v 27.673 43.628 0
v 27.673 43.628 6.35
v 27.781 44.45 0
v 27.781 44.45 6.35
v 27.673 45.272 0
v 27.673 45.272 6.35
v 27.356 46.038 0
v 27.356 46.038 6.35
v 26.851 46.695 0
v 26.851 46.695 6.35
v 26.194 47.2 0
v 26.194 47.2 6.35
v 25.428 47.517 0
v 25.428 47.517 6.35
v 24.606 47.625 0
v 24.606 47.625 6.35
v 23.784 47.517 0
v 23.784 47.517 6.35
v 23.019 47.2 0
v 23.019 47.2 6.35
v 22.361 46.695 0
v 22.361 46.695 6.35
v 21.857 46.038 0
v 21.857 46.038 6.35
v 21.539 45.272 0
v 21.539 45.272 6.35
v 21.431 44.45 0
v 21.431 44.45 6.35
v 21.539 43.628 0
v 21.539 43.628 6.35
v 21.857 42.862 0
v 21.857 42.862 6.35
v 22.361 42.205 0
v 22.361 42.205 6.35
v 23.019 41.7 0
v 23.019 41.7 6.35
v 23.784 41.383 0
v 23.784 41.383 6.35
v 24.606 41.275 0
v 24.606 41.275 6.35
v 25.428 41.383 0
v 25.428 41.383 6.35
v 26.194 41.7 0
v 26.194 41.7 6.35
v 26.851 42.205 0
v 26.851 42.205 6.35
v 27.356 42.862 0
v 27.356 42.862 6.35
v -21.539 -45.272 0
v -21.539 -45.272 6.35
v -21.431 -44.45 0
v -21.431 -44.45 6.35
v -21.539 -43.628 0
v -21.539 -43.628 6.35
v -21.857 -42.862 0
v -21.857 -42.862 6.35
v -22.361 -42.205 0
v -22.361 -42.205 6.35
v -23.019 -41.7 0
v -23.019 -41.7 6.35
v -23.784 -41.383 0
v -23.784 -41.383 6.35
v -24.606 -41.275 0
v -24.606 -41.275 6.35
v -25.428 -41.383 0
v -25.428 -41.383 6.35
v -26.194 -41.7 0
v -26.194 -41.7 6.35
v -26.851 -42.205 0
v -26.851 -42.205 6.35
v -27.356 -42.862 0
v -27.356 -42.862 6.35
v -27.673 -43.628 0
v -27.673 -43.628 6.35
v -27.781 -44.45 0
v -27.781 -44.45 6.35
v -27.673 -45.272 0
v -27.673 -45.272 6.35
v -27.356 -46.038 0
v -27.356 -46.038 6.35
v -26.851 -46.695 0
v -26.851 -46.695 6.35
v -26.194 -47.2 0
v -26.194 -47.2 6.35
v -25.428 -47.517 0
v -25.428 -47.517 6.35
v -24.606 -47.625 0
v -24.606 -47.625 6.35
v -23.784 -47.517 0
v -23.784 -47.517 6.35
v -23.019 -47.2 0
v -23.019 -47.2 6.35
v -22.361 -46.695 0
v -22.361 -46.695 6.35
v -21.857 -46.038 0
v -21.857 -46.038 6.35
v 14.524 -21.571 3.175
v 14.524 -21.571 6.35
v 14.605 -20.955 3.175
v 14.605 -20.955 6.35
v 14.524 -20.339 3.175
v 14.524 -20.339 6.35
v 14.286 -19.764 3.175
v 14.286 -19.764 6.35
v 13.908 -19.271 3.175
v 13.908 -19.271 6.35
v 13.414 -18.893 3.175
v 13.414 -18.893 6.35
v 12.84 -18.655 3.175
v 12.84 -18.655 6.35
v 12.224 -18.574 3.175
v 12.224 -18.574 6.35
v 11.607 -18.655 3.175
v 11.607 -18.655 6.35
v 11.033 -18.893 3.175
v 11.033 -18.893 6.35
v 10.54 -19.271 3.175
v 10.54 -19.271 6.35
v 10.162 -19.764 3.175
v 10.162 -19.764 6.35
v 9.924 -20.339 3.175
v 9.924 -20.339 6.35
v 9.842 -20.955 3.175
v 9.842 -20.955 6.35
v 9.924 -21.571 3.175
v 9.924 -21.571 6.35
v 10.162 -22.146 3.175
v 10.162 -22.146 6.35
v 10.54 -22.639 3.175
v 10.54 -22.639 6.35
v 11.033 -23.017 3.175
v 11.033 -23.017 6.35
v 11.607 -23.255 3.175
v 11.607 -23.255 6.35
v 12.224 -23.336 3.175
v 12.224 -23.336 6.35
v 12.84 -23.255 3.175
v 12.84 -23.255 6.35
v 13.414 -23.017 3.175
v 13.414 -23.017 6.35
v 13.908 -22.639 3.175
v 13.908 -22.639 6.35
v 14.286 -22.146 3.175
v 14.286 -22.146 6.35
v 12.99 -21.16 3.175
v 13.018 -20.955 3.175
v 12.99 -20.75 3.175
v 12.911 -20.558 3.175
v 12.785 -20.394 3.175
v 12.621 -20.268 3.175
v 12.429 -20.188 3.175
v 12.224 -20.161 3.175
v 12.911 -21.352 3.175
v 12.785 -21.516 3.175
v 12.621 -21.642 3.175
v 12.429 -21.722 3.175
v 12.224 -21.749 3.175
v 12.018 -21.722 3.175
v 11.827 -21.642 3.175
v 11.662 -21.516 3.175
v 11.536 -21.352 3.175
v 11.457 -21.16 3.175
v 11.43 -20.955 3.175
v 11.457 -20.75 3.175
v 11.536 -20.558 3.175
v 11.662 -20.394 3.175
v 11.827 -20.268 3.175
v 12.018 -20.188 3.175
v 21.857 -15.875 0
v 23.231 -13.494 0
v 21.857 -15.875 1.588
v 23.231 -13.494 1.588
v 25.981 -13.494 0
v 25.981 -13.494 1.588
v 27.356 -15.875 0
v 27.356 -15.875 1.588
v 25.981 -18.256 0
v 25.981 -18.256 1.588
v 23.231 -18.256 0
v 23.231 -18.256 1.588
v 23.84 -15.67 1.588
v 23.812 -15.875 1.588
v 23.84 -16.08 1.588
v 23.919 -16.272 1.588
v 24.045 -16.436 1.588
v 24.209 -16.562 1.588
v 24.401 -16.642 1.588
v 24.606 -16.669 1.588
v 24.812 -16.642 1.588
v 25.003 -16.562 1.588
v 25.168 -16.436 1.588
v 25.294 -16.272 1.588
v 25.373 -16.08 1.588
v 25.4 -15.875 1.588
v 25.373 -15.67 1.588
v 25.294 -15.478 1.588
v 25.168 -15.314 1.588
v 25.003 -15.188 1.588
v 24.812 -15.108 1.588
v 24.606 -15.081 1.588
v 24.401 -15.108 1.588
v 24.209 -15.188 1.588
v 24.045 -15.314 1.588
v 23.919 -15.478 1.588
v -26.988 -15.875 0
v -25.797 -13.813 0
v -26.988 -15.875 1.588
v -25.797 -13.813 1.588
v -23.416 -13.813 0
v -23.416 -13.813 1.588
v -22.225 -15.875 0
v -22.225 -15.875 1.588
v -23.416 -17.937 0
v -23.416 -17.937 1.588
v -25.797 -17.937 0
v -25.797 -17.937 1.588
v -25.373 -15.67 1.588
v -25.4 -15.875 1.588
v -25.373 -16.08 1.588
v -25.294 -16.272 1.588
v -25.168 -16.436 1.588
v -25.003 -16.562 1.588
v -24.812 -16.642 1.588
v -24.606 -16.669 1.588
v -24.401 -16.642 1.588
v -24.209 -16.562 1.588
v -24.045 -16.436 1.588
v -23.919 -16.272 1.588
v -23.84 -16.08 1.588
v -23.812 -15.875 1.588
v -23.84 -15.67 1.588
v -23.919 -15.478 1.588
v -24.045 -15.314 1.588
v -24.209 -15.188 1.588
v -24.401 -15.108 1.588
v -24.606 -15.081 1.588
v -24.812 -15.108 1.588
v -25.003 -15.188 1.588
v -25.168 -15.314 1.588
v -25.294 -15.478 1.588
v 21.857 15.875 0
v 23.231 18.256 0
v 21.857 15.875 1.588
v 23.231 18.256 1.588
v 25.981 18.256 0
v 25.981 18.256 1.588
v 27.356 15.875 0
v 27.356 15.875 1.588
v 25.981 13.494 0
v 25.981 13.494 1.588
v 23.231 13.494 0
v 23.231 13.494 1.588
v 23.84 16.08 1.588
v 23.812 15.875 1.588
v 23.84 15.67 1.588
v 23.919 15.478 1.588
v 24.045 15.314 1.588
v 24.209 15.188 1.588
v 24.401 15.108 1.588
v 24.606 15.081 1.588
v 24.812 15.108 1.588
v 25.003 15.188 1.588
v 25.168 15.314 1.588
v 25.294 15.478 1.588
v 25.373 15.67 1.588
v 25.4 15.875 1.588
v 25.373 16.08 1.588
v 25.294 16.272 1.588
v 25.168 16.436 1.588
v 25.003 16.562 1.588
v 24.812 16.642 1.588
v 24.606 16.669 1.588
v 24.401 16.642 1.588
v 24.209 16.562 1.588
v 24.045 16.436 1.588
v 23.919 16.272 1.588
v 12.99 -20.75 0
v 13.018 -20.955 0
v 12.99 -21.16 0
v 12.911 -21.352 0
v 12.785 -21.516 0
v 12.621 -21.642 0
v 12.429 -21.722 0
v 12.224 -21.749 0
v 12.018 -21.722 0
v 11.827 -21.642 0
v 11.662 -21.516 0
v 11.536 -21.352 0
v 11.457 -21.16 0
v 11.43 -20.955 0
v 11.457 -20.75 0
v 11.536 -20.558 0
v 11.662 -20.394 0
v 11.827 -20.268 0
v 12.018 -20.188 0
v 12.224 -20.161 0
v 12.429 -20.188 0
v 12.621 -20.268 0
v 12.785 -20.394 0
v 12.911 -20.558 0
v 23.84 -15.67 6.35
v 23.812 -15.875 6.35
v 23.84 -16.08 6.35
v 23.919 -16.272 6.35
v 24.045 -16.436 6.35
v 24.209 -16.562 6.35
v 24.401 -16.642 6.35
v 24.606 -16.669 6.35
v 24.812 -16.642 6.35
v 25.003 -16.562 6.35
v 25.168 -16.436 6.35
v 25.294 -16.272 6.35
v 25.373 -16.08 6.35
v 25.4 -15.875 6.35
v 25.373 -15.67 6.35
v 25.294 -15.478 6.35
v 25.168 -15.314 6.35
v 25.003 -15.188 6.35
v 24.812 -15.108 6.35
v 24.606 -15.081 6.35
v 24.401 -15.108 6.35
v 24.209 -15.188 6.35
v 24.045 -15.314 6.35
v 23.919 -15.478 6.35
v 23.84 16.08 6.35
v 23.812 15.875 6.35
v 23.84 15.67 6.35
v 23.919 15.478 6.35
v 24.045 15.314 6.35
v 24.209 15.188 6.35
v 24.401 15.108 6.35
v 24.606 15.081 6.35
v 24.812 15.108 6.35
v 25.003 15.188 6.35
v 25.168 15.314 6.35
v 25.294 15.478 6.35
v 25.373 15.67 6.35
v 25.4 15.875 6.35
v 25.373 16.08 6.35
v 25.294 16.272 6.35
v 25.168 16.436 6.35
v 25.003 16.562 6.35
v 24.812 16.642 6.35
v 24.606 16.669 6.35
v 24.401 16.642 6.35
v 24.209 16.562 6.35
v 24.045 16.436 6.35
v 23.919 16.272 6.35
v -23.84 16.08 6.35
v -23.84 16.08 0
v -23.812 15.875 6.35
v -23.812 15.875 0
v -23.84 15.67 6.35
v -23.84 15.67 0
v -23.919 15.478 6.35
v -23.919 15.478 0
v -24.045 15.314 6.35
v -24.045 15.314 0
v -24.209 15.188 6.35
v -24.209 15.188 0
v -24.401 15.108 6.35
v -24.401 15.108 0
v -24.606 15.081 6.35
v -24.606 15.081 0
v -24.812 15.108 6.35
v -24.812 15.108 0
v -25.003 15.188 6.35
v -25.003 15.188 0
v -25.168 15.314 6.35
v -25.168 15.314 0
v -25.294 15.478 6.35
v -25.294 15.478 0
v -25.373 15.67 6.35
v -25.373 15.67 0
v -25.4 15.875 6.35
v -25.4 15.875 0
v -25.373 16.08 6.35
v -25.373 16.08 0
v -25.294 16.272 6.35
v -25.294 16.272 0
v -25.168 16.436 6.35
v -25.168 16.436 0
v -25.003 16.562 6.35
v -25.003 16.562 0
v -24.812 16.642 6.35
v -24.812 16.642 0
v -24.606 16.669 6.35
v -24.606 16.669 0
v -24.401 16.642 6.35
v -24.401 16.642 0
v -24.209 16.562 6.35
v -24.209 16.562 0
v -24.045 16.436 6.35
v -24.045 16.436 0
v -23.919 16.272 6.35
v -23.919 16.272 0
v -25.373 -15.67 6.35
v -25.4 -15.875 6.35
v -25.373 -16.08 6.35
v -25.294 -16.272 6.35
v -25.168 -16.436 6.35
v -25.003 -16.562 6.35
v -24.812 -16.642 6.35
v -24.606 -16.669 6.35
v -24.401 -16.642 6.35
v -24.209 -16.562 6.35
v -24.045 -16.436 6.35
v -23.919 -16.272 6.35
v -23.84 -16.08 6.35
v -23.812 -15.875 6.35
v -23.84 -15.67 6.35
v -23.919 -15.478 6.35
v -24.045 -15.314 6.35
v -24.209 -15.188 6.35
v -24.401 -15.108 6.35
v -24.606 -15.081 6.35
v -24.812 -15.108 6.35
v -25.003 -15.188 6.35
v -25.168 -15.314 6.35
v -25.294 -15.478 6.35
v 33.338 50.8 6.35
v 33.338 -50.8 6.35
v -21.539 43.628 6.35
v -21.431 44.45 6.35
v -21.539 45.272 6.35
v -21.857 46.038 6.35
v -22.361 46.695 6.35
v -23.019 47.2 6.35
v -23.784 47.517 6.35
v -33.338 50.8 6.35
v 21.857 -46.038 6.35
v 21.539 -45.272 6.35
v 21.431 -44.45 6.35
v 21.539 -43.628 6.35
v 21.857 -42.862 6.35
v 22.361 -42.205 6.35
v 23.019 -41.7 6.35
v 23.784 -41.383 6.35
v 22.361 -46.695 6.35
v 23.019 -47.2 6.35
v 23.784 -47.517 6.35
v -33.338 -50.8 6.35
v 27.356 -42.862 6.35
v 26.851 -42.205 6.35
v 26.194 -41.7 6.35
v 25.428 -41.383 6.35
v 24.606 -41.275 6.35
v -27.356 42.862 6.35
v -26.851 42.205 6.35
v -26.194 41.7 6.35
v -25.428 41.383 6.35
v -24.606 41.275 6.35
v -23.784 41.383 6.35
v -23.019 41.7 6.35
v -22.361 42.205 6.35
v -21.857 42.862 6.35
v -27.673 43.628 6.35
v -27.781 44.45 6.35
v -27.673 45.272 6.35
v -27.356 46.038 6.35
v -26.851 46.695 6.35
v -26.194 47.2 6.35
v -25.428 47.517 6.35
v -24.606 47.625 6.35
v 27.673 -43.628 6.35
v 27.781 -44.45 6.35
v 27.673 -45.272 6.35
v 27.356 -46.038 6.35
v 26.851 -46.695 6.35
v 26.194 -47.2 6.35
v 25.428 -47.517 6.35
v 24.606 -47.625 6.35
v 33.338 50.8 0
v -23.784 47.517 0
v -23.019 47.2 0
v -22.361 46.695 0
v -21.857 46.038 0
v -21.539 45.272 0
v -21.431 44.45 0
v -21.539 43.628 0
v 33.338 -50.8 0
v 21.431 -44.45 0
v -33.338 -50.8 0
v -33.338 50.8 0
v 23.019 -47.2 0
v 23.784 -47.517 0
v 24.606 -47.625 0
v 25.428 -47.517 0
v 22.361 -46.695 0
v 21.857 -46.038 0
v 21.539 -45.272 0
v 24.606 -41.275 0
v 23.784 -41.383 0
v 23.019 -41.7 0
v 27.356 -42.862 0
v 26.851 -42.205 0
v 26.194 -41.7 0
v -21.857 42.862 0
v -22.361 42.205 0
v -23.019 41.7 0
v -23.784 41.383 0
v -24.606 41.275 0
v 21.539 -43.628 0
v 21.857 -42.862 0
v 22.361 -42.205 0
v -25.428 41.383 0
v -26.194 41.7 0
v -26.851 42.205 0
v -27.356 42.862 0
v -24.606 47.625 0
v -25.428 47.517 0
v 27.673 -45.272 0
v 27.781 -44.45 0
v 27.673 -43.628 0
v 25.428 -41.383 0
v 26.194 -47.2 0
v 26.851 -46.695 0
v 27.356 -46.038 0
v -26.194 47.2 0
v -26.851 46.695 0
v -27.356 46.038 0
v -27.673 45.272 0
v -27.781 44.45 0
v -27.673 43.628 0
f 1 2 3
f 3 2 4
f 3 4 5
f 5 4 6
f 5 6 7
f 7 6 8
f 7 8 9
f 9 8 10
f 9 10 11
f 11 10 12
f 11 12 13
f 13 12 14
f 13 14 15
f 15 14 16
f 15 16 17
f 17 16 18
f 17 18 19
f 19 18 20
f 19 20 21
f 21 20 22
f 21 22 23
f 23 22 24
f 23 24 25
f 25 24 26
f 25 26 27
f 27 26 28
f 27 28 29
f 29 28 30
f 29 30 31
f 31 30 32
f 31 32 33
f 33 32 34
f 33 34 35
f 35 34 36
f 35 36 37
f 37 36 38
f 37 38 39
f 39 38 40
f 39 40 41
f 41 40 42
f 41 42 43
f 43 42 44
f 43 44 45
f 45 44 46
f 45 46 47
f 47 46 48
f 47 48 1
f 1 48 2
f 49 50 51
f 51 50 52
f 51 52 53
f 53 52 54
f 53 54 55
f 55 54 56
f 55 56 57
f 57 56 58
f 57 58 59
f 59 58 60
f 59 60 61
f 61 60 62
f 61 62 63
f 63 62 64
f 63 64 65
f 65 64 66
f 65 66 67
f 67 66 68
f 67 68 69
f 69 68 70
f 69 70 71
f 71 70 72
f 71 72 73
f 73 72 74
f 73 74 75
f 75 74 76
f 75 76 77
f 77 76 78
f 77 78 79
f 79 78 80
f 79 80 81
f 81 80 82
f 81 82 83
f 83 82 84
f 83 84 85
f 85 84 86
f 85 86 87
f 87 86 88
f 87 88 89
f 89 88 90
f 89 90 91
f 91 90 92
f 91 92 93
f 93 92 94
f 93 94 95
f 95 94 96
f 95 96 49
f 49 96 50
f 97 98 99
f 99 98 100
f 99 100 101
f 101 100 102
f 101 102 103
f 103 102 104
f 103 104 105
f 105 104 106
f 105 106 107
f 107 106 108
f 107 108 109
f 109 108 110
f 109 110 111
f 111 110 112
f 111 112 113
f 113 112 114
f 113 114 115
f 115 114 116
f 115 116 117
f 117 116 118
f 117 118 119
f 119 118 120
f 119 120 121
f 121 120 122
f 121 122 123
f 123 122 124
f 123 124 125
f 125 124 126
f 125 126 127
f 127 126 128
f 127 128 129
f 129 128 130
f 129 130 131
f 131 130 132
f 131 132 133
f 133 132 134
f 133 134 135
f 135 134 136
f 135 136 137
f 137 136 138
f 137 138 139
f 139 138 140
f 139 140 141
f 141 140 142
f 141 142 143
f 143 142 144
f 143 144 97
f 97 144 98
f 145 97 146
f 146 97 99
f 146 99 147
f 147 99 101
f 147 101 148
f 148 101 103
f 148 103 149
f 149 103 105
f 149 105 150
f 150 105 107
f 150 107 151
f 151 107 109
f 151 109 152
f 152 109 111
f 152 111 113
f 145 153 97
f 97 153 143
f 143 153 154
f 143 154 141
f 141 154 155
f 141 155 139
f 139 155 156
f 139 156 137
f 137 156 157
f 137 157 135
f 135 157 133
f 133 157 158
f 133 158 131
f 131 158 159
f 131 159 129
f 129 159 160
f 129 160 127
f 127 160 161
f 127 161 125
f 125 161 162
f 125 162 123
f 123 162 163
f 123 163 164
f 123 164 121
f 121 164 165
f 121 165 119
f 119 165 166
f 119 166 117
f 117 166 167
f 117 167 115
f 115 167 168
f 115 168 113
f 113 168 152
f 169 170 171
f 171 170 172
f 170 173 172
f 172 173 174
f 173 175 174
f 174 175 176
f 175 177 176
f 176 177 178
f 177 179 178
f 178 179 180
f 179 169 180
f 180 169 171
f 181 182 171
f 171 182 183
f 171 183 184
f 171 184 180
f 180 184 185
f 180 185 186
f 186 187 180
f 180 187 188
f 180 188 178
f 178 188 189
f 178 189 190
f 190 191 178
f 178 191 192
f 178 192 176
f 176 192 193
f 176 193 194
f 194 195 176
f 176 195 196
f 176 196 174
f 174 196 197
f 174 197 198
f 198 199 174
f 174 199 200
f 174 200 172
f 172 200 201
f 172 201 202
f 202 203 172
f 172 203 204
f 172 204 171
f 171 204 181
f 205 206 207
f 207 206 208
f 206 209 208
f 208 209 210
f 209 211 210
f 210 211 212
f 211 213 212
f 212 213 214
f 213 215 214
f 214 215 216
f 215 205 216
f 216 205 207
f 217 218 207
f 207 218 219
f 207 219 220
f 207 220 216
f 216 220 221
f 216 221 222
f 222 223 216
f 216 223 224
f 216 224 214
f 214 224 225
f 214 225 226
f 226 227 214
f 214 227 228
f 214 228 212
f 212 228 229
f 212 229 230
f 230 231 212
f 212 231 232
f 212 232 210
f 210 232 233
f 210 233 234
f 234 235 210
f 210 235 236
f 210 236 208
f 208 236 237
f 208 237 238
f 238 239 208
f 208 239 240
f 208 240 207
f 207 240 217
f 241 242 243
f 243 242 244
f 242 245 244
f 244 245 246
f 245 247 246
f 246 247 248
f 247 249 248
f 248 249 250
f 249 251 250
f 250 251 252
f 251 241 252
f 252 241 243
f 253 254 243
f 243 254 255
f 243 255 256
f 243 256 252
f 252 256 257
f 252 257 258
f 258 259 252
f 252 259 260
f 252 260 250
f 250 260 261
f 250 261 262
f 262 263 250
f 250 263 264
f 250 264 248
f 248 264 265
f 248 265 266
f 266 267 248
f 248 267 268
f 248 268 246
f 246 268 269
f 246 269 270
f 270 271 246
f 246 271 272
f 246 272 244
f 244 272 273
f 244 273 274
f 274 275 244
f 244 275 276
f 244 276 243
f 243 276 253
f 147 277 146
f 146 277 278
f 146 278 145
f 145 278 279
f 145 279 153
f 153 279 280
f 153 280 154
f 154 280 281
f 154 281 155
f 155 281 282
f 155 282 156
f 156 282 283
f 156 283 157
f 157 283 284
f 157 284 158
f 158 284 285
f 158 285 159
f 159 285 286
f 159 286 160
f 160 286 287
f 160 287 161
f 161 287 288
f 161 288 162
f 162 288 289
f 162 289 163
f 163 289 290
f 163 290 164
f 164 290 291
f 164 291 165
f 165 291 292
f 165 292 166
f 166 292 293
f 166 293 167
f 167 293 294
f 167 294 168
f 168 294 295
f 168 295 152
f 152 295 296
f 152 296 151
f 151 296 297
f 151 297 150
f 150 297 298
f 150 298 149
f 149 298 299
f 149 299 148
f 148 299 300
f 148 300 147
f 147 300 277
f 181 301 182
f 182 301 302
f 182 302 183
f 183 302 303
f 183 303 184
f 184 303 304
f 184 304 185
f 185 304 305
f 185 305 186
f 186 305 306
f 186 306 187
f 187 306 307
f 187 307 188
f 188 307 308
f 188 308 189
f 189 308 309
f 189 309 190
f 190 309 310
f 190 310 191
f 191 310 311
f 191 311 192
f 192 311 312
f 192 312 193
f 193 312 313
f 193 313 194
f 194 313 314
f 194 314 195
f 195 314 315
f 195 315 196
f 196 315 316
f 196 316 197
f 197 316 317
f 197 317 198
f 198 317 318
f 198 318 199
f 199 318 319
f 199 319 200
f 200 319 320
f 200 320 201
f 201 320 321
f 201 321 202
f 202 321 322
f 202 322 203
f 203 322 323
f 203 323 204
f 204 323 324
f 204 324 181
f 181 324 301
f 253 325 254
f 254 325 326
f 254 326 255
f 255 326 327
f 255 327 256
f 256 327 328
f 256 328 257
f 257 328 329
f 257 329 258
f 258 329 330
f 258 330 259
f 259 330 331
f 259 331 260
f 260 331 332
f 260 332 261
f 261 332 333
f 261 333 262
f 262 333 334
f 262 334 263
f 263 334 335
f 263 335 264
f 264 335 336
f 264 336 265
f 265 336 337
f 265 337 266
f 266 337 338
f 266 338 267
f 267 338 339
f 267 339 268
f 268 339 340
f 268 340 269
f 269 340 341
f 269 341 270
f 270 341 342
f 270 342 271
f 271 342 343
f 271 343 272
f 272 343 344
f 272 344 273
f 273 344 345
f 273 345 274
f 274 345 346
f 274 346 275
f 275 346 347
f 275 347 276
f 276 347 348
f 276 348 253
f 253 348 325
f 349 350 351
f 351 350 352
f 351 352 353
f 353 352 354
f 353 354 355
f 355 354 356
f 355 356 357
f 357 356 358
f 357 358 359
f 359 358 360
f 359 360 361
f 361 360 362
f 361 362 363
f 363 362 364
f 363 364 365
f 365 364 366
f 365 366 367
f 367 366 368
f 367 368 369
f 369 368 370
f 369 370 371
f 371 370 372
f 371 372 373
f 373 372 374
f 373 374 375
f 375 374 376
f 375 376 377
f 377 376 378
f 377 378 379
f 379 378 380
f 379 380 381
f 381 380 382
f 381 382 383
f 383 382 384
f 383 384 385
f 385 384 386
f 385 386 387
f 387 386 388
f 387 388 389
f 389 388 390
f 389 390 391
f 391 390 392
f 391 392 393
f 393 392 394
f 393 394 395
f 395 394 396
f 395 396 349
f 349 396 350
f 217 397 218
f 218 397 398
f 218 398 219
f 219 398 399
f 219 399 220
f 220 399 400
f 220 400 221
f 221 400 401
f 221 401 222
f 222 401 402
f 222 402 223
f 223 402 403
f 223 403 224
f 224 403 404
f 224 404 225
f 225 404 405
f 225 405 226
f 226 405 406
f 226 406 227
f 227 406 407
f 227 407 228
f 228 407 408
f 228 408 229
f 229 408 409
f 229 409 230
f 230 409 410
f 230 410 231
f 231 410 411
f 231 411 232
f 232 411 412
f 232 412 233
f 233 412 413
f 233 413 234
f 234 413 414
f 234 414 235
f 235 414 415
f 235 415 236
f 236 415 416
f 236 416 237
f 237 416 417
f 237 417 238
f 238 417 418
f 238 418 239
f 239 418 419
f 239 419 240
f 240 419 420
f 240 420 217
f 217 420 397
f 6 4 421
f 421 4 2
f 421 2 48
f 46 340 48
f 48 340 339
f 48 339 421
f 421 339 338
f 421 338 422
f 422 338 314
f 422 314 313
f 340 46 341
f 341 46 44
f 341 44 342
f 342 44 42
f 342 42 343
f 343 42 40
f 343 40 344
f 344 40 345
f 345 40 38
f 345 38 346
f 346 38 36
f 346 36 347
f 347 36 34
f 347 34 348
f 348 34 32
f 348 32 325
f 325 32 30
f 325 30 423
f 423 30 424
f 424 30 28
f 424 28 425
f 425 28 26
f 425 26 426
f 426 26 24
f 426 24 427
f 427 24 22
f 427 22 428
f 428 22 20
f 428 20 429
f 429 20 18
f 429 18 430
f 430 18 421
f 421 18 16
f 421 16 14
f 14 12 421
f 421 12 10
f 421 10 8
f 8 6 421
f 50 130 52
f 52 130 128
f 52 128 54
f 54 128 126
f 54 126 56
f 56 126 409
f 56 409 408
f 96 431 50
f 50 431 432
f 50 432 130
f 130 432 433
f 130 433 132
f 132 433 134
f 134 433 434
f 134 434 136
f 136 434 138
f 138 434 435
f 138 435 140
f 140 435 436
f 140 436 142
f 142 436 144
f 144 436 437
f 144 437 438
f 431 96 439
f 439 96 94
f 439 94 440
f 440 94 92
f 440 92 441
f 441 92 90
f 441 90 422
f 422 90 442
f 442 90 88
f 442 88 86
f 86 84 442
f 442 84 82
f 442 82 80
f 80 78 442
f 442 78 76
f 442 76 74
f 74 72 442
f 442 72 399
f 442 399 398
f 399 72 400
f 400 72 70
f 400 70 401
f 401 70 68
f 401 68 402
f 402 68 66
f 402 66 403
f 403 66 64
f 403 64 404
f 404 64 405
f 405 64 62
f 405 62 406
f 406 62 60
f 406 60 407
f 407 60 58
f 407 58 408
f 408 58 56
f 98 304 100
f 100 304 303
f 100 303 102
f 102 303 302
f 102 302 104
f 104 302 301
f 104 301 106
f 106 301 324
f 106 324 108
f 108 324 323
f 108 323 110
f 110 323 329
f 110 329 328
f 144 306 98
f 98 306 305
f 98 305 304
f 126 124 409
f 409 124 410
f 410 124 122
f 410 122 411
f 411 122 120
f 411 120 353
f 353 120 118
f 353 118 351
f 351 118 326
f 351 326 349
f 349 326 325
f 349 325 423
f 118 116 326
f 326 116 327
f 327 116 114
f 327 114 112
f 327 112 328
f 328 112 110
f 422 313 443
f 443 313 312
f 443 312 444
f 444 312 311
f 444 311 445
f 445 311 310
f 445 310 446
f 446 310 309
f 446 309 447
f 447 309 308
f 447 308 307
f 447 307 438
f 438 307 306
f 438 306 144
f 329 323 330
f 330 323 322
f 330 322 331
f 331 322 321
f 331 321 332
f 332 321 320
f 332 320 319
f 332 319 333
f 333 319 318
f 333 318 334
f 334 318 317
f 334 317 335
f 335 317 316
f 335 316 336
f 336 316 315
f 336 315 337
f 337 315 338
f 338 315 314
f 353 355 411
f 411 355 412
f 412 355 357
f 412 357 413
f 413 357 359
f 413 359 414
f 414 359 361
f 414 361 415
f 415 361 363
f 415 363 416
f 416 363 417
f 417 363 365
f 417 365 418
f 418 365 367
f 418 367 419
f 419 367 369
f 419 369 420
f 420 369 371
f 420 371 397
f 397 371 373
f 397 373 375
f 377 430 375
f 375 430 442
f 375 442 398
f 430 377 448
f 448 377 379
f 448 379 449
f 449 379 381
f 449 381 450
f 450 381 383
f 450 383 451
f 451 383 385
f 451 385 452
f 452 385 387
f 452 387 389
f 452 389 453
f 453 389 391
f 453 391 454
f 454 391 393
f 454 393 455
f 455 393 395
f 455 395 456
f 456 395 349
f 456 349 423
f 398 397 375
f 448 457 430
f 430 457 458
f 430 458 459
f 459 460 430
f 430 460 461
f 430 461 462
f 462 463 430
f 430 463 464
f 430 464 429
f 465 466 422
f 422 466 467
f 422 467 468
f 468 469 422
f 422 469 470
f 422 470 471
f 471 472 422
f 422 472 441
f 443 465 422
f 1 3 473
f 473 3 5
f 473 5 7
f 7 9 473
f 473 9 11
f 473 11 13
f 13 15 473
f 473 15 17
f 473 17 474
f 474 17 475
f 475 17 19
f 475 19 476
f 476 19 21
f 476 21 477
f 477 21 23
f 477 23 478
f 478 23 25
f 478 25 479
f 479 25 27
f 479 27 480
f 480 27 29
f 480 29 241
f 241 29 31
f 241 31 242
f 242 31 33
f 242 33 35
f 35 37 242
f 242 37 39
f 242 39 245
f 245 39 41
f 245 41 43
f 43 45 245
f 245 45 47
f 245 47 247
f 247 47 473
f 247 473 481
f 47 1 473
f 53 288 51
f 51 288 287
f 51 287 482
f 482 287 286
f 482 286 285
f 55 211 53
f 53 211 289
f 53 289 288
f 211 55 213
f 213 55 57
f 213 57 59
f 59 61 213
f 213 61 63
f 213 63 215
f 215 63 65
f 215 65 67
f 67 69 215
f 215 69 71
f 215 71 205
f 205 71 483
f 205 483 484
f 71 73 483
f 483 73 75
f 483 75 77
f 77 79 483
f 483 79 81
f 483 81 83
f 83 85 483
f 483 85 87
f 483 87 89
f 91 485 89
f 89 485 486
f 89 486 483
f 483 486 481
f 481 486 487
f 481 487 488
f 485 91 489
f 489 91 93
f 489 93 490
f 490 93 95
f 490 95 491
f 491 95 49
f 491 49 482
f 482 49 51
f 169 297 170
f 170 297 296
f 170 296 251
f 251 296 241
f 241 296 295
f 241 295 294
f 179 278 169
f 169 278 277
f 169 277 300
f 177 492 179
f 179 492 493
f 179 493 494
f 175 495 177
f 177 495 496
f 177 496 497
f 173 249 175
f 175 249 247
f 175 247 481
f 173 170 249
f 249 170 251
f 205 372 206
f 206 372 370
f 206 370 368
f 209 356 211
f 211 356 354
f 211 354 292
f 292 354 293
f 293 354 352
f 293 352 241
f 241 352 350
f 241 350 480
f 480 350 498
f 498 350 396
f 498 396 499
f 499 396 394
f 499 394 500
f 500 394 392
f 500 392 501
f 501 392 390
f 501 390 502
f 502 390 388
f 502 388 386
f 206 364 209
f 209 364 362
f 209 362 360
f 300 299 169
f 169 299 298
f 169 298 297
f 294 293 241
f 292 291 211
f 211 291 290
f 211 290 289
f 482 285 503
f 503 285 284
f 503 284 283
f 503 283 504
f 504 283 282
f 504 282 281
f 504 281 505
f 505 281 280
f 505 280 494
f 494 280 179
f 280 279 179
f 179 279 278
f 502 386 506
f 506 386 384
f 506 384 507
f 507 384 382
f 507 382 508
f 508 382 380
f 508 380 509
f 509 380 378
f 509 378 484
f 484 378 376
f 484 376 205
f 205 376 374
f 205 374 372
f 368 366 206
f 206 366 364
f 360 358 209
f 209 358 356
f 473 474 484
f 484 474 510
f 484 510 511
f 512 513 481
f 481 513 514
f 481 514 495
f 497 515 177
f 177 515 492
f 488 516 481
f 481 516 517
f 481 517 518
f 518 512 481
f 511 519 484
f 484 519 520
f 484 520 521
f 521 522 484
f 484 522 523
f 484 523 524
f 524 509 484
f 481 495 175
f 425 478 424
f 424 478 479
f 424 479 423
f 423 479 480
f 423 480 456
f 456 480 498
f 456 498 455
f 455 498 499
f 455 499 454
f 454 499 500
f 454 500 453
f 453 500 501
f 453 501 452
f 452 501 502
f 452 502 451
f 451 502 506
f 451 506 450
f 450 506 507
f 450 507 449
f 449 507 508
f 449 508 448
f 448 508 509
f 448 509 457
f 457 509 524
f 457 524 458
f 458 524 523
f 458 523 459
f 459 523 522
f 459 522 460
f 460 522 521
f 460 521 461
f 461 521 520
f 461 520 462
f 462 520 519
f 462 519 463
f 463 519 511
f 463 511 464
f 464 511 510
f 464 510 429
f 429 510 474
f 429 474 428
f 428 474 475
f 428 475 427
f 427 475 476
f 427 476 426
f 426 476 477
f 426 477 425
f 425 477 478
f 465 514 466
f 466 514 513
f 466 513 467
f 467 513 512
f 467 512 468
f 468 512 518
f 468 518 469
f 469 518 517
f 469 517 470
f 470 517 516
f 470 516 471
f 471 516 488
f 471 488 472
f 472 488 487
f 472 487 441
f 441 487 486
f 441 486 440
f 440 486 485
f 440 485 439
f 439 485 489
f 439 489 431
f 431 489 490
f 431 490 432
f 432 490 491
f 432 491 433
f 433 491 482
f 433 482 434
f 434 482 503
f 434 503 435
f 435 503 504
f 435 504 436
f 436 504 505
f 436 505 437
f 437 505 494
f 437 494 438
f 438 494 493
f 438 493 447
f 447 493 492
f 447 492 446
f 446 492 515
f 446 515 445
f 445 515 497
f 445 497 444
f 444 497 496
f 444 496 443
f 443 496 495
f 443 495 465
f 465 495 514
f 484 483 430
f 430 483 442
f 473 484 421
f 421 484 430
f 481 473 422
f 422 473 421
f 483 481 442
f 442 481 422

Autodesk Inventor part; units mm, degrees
ref_plane "YZ Plane" through (0, 0, 0) normal (1, 0, 0) x (0, 1, 0)
ref_plane "XZ Plane" through (0, 0, 0) normal (0, 1, 0) x (-1, 0, 0)
ref_plane "XY Plane" through (0, 0, 0) normal (0, 0, 1) x (1, 0, 0)
sketch "Sketch1" plane through (0, 0, 0) normal (0, 0, 1) x (1, 0, 0)
  line L0 (24.6062, -15.875) -> (-24.6062, -15.875)
  line L1 (-24.6062, -15.875) -> (-24.6062, 15.875)
  line L2 (-24.6062, 15.875) -> (24.6062, 15.875)
  line L3 (24.6062, 15.875) -> (24.6062, -15.875)
  line L4 (24.6062, -15.875) -> (-24.6062, 15.875) construction
  line L5 (-24.6062, -15.875) -> (24.6062, 15.875) construction
  circle A0 centre (24.6062, 15.875) radius 0.7937
  circle A1 centre (-24.6062, 15.875) radius 0.7937
  circle A2 centre (24.6062, -15.875) radius 0.7937
  circle A3 centre (-24.6062, -15.875) radius 0.7937
  line L6 (-24.6062, -15.875) -> (-24.6062, -22.225)
  line L7 (-24.6062, -15.875) -> (-30.9563, -15.875)
  line L8 (-30.9563, -22.225) -> (32.5437, -22.225)
  line L9 (32.5437, -22.225) -> (32.5437, 31.75)
  line L10 (32.5437, 31.75) -> (-30.9563, 31.75)
  line L11 (-30.9563, 31.75) -> (-30.9563, -22.225)
  line L12 (24.6062, 15.875) -> (-12.2237, 15.875)
  line L13 (-30.9563, 31.75) -> (-30.9563, -22.225)
  line L14 (-24.6062, 15.875) -> (12.2237, 15.875)
  line L15 (12.2237, 15.875) -> (12.2237, -20.955)
  line L16 (12.2237, -20.955) -> (-24.6062, -20.955)
  line L17 (-24.6062, -20.955) -> (-24.6062, 15.875)
  circle A4 centre (12.2237, -20.955) radius 0.7937
  line L18 (-24.6062, 15.875) -> (-24.6062, 44.45)
  line L19 (24.6062, -15.875) -> (24.6062, -44.45)
  circle A5 centre (24.6062, -44.45) radius 3.175
  circle A6 centre (-24.6062, 44.45) radius 3.175
  line L20 (33.3375, -50.8) -> (-33.3375, -50.8)
  line L21 (-33.3375, -50.8) -> (-33.3375, 50.8)
  line L22 (-33.3375, 50.8) -> (33.3375, 50.8)
  line L23 (33.3375, 50.8) -> (33.3375, -50.8)
  line L24 (33.3375, -50.8) -> (-33.3375, 50.8) construction
  line L25 (-33.3375, -50.8) -> (33.3375, 50.8) construction
  point P0 (0, 0)
  dimension "d0" = 49.2125
  dimension "d1" = 31.75
  dimension "d2" = 1.5875
  dimension "d5" = 49.2125
  dimension "d8" = 31.75
  dimension "d11" = 6.35
  dimension "d12" = 6.35
  dimension "d13" = 63.5
  dimension "d14" = 53.975
  dimension "d25" = 36.83
  dimension "d26" = 36.83
  dimension "d27" = 1.5875
  dimension "d28" = 28.575
  dimension "d29" = 28.575
  dimension "d30" = 6.35
  dimension "d31" = 6.35
  dimension "d32" = 66.675
  dimension "d33" = 101.6
sketch "Sketch3" plane through (0, 0, 0) normal (0, 0, 1) x (1, 0, 0)
  line L0 (24.6062, -15.875) -> (-24.6062, -15.875)
  line L1 (-24.6062, -15.875) -> (-24.6062, 15.875)
  line L2 (-24.6062, 15.875) -> (24.6062, 15.875)
  line L3 (24.6062, 15.875) -> (24.6062, -15.875)
  line L4 (24.6062, -15.875) -> (-24.6062, 15.875) construction
  line L5 (-24.6062, -15.875) -> (24.6062, 15.875) construction
  circle A0 centre (24.6062, 15.875) radius 0.7937
  circle A1 centre (-24.6062, 15.875) radius 0.7937
  circle A2 centre (24.6062, -15.875) radius 0.7937
  circle A3 centre (-24.6062, -15.875) radius 0.7937
  line L6 (-24.6062, -15.875) -> (-24.6062, -22.225)
  line L7 (-24.6062, -15.875) -> (-30.9563, -15.875)
  line L8 (-30.9563, -22.225) -> (32.5437, -22.225)
  line L9 (32.5437, -22.225) -> (32.5437, 31.75)
  line L10 (32.5437, 31.75) -> (-30.9563, 31.75)
  line L11 (-30.9563, 31.75) -> (-30.9563, -22.225)
  line L12 (24.6062, 15.875) -> (-12.2237, 15.875)
  line L13 (-30.9563, 31.75) -> (-30.9563, -22.225)
  line L14 (-24.6062, 15.875) -> (12.2237, 15.875)
  line L15 (12.2237, 15.875) -> (12.2237, -20.955)
  line L16 (12.2237, -20.955) -> (-24.6062, -20.955)
  line L17 (-24.6062, -20.955) -> (-24.6062, 15.875)
  circle A4 centre (12.2237, -20.955) radius 0.7937
  line L18 (-24.6062, 15.875) -> (-24.6062, 44.45)
  line L19 (24.6062, -15.875) -> (24.6062, -44.45)
  circle A5 centre (24.6062, -44.45) radius 3.175
  circle A6 centre (-24.6062, 44.45) radius 3.175
  line L20 (33.3375, -50.8) -> (-33.3375, -50.8)
  line L21 (-33.3375, -50.8) -> (-33.3375, 50.8)
  line L22 (-33.3375, 50.8) -> (33.3375, 50.8)
  line L23 (33.3375, 50.8) -> (33.3375, -50.8)
  line L24 (33.3375, -50.8) -> (-33.3375, 50.8) construction
  line L25 (-33.3375, -50.8) -> (33.3375, 50.8) construction
  point P0 (0, 0)
  dimension "d34" = 49.2125
  dimension "d35" = 31.75
  dimension "d36" = 1.5875
  dimension "d37" = 49.2125
  dimension "d38" = 31.75
  dimension "d39" = 6.35
  dimension "d40" = 6.35
  dimension "d41" = 63.5
  dimension "d42" = 53.975
  dimension "d43" = 36.83
  dimension "d44" = 36.83
  dimension "d45" = 1.5875
  dimension "d46" = 28.575
  dimension "d47" = 28.575
  dimension "d48" = 6.35
  dimension "d49" = 6.35
  dimension "d50" = 66.675
  dimension "d51" = 101.6
extrude "Extrusion2" add sketch "Sketch1" along normal blind 6.35 contours A3 L6 L0 | A3 L1 A1 L2 L15 L0 | L0 L1 A3 | L0 L15 A4 L16 L6 A3 | L7 A3 L1 | L6 A3 L7 | L15 L2 A0 L3 A2 L0 | L0 A2 L19 L8 L6 L16 A4 L15 | A3 L7 L11 L10 L18 A1 L1 | L6 L8 L11 L7 A3 | A2 L3 L0 | L0 L19 A2 | L2 A1 L18 L10 L9 L8 L19 A2 L3 A0 | A4 L16 L15 | L15 L16 A4 | A1 L18 L1 | L1 L2 A1 | L3 A2 L19 | A0 L3 L2 | L2 L3 A0 | L18 A1 L2 | L20 L21 L22 L23
extrude "Extrusion3" cut sketch "Sketch3" along normal blind 6.35 contours A3 L6 L0 | L0 L1 A3 | L7 A3 L1 | L6 A3 L7 | A2 L3 L0 | L0 L19 A2 | A4 L16 L15 | L15 L16 A4 | A1 L18 L1 | L1 L2 A1 | L3 A2 L19 | A0 L3 L2 | L2 L3 A0 | L18 A1 L2
sketch "Sketch7" plane through (0, 0, 0) normal (0, 0, -1) x (-1, 0, 0)
  circle A0 centre (-24.6062, 15.875) radius 0.7937 projected
  circle A1 centre (-12.2237, -20.955) radius 0.7937 projected
  circle A2 centre (24.6062, -15.875) radius 0.7937 projected
  circle A3 centre (24.6062, 15.875) radius 0.7937 projected
  circle A4 centre (-24.6062, -15.875) radius 0.7937 projected
  line L0 (-21.8566, 15.875) -> (-23.2314, 13.4938)
  line L1 (-23.2314, 13.4938) -> (-25.9811, 13.4938)
  line L2 (-25.9811, 13.4938) -> (-27.3559, 15.875)
  line L3 (-27.3559, 15.875) -> (-25.9811, 18.2562)
  line L4 (-25.9811, 18.2562) -> (-23.2314, 18.2563)
  line L5 (-23.2314, 18.2563) -> (-21.8566, 15.875)
  line L6 (-21.8566, -15.875) -> (-23.2314, -18.2562)
  line L7 (-23.2314, -18.2562) -> (-25.9811, -18.2562)
  line L8 (-25.9811, -18.2562) -> (-27.3559, -15.875)
  line L9 (-27.3559, -15.875) -> (-25.9811, -13.4937)
  line L10 (-25.9811, -13.4937) -> (-23.2314, -13.4937)
  line L11 (-23.2314, -13.4937) -> (-21.8566, -15.875)
  line L12 (26.9875, -15.875) -> (25.7969, -17.9372)
  line L13 (25.7969, -17.9372) -> (23.4156, -17.9372)
  line L14 (23.4156, -17.9372) -> (22.225, -15.875)
  line L15 (22.225, -15.875) -> (23.4156, -13.8128)
  line L16 (23.4156, -13.8128) -> (25.7969, -13.8128)
  line L17 (25.7969, -13.8128) -> (26.9875, -15.875)
  point P0 (0, 0)
  dimension "d118" = 4.7625
  dimension "d119" = 4.7625
  dimension "d120" = 4.7625
extrude "Extrusion4" cut sketch "Sketch7" against normal blind 1.5875 contours L0 L1 L2 L3 L4 L5 | L6 L7 L8 L9 L10 L11 | L12 L13 L14 L15 L16 L17
sketch "Sketch8" plane through (0, 0, 6.35) normal (0, 0, 1) x (1, 0, 0)
  circle A0 centre (12.2237, -20.955) radius 0.7937 projected
  circle A1 centre (12.2237, -20.955) radius 2.3813
  point P0 (0, 0)
  dimension "d123" = 4.7625
extrude "Extrusion5" cut sketch "Sketch8" against normal blind 3.175
sketch "Sketch9" plane through (0, 0, 6.35) normal (0, 0, 1) x (1, 0, 0)
  circle A0 centre (24.6062, -44.45) radius 3.175 projected
  circle A1 centre (-24.6062, 44.45) radius 3.175 projected
  line L0 (-24.6062, 44.45) -> (24.6062, 44.45)
  line L1 (24.6062, 44.45) -> (24.6062, -44.45)
  line L2 (24.6062, -44.45) -> (-24.6062, -44.45)
  line L3 (-24.6062, -44.45) -> (-24.6062, 44.45)
  circle A2 centre (-24.6062, -44.45) radius 3.175
  circle A3 centre (24.6062, 44.45) radius 3.175
  point P0 (0, 0)
  dimension "d126" = 6.35
  dimension "d127" = 6.35
extrude "Extrusion6" cut sketch "Sketch9" against normal blind 6.35 contours A3 L0 L1 | L1 L0 A3 | A2 L3 L2 | L2 L3 A2
properties part number "lidarCamMount" material "Polyethylene, High Density"
